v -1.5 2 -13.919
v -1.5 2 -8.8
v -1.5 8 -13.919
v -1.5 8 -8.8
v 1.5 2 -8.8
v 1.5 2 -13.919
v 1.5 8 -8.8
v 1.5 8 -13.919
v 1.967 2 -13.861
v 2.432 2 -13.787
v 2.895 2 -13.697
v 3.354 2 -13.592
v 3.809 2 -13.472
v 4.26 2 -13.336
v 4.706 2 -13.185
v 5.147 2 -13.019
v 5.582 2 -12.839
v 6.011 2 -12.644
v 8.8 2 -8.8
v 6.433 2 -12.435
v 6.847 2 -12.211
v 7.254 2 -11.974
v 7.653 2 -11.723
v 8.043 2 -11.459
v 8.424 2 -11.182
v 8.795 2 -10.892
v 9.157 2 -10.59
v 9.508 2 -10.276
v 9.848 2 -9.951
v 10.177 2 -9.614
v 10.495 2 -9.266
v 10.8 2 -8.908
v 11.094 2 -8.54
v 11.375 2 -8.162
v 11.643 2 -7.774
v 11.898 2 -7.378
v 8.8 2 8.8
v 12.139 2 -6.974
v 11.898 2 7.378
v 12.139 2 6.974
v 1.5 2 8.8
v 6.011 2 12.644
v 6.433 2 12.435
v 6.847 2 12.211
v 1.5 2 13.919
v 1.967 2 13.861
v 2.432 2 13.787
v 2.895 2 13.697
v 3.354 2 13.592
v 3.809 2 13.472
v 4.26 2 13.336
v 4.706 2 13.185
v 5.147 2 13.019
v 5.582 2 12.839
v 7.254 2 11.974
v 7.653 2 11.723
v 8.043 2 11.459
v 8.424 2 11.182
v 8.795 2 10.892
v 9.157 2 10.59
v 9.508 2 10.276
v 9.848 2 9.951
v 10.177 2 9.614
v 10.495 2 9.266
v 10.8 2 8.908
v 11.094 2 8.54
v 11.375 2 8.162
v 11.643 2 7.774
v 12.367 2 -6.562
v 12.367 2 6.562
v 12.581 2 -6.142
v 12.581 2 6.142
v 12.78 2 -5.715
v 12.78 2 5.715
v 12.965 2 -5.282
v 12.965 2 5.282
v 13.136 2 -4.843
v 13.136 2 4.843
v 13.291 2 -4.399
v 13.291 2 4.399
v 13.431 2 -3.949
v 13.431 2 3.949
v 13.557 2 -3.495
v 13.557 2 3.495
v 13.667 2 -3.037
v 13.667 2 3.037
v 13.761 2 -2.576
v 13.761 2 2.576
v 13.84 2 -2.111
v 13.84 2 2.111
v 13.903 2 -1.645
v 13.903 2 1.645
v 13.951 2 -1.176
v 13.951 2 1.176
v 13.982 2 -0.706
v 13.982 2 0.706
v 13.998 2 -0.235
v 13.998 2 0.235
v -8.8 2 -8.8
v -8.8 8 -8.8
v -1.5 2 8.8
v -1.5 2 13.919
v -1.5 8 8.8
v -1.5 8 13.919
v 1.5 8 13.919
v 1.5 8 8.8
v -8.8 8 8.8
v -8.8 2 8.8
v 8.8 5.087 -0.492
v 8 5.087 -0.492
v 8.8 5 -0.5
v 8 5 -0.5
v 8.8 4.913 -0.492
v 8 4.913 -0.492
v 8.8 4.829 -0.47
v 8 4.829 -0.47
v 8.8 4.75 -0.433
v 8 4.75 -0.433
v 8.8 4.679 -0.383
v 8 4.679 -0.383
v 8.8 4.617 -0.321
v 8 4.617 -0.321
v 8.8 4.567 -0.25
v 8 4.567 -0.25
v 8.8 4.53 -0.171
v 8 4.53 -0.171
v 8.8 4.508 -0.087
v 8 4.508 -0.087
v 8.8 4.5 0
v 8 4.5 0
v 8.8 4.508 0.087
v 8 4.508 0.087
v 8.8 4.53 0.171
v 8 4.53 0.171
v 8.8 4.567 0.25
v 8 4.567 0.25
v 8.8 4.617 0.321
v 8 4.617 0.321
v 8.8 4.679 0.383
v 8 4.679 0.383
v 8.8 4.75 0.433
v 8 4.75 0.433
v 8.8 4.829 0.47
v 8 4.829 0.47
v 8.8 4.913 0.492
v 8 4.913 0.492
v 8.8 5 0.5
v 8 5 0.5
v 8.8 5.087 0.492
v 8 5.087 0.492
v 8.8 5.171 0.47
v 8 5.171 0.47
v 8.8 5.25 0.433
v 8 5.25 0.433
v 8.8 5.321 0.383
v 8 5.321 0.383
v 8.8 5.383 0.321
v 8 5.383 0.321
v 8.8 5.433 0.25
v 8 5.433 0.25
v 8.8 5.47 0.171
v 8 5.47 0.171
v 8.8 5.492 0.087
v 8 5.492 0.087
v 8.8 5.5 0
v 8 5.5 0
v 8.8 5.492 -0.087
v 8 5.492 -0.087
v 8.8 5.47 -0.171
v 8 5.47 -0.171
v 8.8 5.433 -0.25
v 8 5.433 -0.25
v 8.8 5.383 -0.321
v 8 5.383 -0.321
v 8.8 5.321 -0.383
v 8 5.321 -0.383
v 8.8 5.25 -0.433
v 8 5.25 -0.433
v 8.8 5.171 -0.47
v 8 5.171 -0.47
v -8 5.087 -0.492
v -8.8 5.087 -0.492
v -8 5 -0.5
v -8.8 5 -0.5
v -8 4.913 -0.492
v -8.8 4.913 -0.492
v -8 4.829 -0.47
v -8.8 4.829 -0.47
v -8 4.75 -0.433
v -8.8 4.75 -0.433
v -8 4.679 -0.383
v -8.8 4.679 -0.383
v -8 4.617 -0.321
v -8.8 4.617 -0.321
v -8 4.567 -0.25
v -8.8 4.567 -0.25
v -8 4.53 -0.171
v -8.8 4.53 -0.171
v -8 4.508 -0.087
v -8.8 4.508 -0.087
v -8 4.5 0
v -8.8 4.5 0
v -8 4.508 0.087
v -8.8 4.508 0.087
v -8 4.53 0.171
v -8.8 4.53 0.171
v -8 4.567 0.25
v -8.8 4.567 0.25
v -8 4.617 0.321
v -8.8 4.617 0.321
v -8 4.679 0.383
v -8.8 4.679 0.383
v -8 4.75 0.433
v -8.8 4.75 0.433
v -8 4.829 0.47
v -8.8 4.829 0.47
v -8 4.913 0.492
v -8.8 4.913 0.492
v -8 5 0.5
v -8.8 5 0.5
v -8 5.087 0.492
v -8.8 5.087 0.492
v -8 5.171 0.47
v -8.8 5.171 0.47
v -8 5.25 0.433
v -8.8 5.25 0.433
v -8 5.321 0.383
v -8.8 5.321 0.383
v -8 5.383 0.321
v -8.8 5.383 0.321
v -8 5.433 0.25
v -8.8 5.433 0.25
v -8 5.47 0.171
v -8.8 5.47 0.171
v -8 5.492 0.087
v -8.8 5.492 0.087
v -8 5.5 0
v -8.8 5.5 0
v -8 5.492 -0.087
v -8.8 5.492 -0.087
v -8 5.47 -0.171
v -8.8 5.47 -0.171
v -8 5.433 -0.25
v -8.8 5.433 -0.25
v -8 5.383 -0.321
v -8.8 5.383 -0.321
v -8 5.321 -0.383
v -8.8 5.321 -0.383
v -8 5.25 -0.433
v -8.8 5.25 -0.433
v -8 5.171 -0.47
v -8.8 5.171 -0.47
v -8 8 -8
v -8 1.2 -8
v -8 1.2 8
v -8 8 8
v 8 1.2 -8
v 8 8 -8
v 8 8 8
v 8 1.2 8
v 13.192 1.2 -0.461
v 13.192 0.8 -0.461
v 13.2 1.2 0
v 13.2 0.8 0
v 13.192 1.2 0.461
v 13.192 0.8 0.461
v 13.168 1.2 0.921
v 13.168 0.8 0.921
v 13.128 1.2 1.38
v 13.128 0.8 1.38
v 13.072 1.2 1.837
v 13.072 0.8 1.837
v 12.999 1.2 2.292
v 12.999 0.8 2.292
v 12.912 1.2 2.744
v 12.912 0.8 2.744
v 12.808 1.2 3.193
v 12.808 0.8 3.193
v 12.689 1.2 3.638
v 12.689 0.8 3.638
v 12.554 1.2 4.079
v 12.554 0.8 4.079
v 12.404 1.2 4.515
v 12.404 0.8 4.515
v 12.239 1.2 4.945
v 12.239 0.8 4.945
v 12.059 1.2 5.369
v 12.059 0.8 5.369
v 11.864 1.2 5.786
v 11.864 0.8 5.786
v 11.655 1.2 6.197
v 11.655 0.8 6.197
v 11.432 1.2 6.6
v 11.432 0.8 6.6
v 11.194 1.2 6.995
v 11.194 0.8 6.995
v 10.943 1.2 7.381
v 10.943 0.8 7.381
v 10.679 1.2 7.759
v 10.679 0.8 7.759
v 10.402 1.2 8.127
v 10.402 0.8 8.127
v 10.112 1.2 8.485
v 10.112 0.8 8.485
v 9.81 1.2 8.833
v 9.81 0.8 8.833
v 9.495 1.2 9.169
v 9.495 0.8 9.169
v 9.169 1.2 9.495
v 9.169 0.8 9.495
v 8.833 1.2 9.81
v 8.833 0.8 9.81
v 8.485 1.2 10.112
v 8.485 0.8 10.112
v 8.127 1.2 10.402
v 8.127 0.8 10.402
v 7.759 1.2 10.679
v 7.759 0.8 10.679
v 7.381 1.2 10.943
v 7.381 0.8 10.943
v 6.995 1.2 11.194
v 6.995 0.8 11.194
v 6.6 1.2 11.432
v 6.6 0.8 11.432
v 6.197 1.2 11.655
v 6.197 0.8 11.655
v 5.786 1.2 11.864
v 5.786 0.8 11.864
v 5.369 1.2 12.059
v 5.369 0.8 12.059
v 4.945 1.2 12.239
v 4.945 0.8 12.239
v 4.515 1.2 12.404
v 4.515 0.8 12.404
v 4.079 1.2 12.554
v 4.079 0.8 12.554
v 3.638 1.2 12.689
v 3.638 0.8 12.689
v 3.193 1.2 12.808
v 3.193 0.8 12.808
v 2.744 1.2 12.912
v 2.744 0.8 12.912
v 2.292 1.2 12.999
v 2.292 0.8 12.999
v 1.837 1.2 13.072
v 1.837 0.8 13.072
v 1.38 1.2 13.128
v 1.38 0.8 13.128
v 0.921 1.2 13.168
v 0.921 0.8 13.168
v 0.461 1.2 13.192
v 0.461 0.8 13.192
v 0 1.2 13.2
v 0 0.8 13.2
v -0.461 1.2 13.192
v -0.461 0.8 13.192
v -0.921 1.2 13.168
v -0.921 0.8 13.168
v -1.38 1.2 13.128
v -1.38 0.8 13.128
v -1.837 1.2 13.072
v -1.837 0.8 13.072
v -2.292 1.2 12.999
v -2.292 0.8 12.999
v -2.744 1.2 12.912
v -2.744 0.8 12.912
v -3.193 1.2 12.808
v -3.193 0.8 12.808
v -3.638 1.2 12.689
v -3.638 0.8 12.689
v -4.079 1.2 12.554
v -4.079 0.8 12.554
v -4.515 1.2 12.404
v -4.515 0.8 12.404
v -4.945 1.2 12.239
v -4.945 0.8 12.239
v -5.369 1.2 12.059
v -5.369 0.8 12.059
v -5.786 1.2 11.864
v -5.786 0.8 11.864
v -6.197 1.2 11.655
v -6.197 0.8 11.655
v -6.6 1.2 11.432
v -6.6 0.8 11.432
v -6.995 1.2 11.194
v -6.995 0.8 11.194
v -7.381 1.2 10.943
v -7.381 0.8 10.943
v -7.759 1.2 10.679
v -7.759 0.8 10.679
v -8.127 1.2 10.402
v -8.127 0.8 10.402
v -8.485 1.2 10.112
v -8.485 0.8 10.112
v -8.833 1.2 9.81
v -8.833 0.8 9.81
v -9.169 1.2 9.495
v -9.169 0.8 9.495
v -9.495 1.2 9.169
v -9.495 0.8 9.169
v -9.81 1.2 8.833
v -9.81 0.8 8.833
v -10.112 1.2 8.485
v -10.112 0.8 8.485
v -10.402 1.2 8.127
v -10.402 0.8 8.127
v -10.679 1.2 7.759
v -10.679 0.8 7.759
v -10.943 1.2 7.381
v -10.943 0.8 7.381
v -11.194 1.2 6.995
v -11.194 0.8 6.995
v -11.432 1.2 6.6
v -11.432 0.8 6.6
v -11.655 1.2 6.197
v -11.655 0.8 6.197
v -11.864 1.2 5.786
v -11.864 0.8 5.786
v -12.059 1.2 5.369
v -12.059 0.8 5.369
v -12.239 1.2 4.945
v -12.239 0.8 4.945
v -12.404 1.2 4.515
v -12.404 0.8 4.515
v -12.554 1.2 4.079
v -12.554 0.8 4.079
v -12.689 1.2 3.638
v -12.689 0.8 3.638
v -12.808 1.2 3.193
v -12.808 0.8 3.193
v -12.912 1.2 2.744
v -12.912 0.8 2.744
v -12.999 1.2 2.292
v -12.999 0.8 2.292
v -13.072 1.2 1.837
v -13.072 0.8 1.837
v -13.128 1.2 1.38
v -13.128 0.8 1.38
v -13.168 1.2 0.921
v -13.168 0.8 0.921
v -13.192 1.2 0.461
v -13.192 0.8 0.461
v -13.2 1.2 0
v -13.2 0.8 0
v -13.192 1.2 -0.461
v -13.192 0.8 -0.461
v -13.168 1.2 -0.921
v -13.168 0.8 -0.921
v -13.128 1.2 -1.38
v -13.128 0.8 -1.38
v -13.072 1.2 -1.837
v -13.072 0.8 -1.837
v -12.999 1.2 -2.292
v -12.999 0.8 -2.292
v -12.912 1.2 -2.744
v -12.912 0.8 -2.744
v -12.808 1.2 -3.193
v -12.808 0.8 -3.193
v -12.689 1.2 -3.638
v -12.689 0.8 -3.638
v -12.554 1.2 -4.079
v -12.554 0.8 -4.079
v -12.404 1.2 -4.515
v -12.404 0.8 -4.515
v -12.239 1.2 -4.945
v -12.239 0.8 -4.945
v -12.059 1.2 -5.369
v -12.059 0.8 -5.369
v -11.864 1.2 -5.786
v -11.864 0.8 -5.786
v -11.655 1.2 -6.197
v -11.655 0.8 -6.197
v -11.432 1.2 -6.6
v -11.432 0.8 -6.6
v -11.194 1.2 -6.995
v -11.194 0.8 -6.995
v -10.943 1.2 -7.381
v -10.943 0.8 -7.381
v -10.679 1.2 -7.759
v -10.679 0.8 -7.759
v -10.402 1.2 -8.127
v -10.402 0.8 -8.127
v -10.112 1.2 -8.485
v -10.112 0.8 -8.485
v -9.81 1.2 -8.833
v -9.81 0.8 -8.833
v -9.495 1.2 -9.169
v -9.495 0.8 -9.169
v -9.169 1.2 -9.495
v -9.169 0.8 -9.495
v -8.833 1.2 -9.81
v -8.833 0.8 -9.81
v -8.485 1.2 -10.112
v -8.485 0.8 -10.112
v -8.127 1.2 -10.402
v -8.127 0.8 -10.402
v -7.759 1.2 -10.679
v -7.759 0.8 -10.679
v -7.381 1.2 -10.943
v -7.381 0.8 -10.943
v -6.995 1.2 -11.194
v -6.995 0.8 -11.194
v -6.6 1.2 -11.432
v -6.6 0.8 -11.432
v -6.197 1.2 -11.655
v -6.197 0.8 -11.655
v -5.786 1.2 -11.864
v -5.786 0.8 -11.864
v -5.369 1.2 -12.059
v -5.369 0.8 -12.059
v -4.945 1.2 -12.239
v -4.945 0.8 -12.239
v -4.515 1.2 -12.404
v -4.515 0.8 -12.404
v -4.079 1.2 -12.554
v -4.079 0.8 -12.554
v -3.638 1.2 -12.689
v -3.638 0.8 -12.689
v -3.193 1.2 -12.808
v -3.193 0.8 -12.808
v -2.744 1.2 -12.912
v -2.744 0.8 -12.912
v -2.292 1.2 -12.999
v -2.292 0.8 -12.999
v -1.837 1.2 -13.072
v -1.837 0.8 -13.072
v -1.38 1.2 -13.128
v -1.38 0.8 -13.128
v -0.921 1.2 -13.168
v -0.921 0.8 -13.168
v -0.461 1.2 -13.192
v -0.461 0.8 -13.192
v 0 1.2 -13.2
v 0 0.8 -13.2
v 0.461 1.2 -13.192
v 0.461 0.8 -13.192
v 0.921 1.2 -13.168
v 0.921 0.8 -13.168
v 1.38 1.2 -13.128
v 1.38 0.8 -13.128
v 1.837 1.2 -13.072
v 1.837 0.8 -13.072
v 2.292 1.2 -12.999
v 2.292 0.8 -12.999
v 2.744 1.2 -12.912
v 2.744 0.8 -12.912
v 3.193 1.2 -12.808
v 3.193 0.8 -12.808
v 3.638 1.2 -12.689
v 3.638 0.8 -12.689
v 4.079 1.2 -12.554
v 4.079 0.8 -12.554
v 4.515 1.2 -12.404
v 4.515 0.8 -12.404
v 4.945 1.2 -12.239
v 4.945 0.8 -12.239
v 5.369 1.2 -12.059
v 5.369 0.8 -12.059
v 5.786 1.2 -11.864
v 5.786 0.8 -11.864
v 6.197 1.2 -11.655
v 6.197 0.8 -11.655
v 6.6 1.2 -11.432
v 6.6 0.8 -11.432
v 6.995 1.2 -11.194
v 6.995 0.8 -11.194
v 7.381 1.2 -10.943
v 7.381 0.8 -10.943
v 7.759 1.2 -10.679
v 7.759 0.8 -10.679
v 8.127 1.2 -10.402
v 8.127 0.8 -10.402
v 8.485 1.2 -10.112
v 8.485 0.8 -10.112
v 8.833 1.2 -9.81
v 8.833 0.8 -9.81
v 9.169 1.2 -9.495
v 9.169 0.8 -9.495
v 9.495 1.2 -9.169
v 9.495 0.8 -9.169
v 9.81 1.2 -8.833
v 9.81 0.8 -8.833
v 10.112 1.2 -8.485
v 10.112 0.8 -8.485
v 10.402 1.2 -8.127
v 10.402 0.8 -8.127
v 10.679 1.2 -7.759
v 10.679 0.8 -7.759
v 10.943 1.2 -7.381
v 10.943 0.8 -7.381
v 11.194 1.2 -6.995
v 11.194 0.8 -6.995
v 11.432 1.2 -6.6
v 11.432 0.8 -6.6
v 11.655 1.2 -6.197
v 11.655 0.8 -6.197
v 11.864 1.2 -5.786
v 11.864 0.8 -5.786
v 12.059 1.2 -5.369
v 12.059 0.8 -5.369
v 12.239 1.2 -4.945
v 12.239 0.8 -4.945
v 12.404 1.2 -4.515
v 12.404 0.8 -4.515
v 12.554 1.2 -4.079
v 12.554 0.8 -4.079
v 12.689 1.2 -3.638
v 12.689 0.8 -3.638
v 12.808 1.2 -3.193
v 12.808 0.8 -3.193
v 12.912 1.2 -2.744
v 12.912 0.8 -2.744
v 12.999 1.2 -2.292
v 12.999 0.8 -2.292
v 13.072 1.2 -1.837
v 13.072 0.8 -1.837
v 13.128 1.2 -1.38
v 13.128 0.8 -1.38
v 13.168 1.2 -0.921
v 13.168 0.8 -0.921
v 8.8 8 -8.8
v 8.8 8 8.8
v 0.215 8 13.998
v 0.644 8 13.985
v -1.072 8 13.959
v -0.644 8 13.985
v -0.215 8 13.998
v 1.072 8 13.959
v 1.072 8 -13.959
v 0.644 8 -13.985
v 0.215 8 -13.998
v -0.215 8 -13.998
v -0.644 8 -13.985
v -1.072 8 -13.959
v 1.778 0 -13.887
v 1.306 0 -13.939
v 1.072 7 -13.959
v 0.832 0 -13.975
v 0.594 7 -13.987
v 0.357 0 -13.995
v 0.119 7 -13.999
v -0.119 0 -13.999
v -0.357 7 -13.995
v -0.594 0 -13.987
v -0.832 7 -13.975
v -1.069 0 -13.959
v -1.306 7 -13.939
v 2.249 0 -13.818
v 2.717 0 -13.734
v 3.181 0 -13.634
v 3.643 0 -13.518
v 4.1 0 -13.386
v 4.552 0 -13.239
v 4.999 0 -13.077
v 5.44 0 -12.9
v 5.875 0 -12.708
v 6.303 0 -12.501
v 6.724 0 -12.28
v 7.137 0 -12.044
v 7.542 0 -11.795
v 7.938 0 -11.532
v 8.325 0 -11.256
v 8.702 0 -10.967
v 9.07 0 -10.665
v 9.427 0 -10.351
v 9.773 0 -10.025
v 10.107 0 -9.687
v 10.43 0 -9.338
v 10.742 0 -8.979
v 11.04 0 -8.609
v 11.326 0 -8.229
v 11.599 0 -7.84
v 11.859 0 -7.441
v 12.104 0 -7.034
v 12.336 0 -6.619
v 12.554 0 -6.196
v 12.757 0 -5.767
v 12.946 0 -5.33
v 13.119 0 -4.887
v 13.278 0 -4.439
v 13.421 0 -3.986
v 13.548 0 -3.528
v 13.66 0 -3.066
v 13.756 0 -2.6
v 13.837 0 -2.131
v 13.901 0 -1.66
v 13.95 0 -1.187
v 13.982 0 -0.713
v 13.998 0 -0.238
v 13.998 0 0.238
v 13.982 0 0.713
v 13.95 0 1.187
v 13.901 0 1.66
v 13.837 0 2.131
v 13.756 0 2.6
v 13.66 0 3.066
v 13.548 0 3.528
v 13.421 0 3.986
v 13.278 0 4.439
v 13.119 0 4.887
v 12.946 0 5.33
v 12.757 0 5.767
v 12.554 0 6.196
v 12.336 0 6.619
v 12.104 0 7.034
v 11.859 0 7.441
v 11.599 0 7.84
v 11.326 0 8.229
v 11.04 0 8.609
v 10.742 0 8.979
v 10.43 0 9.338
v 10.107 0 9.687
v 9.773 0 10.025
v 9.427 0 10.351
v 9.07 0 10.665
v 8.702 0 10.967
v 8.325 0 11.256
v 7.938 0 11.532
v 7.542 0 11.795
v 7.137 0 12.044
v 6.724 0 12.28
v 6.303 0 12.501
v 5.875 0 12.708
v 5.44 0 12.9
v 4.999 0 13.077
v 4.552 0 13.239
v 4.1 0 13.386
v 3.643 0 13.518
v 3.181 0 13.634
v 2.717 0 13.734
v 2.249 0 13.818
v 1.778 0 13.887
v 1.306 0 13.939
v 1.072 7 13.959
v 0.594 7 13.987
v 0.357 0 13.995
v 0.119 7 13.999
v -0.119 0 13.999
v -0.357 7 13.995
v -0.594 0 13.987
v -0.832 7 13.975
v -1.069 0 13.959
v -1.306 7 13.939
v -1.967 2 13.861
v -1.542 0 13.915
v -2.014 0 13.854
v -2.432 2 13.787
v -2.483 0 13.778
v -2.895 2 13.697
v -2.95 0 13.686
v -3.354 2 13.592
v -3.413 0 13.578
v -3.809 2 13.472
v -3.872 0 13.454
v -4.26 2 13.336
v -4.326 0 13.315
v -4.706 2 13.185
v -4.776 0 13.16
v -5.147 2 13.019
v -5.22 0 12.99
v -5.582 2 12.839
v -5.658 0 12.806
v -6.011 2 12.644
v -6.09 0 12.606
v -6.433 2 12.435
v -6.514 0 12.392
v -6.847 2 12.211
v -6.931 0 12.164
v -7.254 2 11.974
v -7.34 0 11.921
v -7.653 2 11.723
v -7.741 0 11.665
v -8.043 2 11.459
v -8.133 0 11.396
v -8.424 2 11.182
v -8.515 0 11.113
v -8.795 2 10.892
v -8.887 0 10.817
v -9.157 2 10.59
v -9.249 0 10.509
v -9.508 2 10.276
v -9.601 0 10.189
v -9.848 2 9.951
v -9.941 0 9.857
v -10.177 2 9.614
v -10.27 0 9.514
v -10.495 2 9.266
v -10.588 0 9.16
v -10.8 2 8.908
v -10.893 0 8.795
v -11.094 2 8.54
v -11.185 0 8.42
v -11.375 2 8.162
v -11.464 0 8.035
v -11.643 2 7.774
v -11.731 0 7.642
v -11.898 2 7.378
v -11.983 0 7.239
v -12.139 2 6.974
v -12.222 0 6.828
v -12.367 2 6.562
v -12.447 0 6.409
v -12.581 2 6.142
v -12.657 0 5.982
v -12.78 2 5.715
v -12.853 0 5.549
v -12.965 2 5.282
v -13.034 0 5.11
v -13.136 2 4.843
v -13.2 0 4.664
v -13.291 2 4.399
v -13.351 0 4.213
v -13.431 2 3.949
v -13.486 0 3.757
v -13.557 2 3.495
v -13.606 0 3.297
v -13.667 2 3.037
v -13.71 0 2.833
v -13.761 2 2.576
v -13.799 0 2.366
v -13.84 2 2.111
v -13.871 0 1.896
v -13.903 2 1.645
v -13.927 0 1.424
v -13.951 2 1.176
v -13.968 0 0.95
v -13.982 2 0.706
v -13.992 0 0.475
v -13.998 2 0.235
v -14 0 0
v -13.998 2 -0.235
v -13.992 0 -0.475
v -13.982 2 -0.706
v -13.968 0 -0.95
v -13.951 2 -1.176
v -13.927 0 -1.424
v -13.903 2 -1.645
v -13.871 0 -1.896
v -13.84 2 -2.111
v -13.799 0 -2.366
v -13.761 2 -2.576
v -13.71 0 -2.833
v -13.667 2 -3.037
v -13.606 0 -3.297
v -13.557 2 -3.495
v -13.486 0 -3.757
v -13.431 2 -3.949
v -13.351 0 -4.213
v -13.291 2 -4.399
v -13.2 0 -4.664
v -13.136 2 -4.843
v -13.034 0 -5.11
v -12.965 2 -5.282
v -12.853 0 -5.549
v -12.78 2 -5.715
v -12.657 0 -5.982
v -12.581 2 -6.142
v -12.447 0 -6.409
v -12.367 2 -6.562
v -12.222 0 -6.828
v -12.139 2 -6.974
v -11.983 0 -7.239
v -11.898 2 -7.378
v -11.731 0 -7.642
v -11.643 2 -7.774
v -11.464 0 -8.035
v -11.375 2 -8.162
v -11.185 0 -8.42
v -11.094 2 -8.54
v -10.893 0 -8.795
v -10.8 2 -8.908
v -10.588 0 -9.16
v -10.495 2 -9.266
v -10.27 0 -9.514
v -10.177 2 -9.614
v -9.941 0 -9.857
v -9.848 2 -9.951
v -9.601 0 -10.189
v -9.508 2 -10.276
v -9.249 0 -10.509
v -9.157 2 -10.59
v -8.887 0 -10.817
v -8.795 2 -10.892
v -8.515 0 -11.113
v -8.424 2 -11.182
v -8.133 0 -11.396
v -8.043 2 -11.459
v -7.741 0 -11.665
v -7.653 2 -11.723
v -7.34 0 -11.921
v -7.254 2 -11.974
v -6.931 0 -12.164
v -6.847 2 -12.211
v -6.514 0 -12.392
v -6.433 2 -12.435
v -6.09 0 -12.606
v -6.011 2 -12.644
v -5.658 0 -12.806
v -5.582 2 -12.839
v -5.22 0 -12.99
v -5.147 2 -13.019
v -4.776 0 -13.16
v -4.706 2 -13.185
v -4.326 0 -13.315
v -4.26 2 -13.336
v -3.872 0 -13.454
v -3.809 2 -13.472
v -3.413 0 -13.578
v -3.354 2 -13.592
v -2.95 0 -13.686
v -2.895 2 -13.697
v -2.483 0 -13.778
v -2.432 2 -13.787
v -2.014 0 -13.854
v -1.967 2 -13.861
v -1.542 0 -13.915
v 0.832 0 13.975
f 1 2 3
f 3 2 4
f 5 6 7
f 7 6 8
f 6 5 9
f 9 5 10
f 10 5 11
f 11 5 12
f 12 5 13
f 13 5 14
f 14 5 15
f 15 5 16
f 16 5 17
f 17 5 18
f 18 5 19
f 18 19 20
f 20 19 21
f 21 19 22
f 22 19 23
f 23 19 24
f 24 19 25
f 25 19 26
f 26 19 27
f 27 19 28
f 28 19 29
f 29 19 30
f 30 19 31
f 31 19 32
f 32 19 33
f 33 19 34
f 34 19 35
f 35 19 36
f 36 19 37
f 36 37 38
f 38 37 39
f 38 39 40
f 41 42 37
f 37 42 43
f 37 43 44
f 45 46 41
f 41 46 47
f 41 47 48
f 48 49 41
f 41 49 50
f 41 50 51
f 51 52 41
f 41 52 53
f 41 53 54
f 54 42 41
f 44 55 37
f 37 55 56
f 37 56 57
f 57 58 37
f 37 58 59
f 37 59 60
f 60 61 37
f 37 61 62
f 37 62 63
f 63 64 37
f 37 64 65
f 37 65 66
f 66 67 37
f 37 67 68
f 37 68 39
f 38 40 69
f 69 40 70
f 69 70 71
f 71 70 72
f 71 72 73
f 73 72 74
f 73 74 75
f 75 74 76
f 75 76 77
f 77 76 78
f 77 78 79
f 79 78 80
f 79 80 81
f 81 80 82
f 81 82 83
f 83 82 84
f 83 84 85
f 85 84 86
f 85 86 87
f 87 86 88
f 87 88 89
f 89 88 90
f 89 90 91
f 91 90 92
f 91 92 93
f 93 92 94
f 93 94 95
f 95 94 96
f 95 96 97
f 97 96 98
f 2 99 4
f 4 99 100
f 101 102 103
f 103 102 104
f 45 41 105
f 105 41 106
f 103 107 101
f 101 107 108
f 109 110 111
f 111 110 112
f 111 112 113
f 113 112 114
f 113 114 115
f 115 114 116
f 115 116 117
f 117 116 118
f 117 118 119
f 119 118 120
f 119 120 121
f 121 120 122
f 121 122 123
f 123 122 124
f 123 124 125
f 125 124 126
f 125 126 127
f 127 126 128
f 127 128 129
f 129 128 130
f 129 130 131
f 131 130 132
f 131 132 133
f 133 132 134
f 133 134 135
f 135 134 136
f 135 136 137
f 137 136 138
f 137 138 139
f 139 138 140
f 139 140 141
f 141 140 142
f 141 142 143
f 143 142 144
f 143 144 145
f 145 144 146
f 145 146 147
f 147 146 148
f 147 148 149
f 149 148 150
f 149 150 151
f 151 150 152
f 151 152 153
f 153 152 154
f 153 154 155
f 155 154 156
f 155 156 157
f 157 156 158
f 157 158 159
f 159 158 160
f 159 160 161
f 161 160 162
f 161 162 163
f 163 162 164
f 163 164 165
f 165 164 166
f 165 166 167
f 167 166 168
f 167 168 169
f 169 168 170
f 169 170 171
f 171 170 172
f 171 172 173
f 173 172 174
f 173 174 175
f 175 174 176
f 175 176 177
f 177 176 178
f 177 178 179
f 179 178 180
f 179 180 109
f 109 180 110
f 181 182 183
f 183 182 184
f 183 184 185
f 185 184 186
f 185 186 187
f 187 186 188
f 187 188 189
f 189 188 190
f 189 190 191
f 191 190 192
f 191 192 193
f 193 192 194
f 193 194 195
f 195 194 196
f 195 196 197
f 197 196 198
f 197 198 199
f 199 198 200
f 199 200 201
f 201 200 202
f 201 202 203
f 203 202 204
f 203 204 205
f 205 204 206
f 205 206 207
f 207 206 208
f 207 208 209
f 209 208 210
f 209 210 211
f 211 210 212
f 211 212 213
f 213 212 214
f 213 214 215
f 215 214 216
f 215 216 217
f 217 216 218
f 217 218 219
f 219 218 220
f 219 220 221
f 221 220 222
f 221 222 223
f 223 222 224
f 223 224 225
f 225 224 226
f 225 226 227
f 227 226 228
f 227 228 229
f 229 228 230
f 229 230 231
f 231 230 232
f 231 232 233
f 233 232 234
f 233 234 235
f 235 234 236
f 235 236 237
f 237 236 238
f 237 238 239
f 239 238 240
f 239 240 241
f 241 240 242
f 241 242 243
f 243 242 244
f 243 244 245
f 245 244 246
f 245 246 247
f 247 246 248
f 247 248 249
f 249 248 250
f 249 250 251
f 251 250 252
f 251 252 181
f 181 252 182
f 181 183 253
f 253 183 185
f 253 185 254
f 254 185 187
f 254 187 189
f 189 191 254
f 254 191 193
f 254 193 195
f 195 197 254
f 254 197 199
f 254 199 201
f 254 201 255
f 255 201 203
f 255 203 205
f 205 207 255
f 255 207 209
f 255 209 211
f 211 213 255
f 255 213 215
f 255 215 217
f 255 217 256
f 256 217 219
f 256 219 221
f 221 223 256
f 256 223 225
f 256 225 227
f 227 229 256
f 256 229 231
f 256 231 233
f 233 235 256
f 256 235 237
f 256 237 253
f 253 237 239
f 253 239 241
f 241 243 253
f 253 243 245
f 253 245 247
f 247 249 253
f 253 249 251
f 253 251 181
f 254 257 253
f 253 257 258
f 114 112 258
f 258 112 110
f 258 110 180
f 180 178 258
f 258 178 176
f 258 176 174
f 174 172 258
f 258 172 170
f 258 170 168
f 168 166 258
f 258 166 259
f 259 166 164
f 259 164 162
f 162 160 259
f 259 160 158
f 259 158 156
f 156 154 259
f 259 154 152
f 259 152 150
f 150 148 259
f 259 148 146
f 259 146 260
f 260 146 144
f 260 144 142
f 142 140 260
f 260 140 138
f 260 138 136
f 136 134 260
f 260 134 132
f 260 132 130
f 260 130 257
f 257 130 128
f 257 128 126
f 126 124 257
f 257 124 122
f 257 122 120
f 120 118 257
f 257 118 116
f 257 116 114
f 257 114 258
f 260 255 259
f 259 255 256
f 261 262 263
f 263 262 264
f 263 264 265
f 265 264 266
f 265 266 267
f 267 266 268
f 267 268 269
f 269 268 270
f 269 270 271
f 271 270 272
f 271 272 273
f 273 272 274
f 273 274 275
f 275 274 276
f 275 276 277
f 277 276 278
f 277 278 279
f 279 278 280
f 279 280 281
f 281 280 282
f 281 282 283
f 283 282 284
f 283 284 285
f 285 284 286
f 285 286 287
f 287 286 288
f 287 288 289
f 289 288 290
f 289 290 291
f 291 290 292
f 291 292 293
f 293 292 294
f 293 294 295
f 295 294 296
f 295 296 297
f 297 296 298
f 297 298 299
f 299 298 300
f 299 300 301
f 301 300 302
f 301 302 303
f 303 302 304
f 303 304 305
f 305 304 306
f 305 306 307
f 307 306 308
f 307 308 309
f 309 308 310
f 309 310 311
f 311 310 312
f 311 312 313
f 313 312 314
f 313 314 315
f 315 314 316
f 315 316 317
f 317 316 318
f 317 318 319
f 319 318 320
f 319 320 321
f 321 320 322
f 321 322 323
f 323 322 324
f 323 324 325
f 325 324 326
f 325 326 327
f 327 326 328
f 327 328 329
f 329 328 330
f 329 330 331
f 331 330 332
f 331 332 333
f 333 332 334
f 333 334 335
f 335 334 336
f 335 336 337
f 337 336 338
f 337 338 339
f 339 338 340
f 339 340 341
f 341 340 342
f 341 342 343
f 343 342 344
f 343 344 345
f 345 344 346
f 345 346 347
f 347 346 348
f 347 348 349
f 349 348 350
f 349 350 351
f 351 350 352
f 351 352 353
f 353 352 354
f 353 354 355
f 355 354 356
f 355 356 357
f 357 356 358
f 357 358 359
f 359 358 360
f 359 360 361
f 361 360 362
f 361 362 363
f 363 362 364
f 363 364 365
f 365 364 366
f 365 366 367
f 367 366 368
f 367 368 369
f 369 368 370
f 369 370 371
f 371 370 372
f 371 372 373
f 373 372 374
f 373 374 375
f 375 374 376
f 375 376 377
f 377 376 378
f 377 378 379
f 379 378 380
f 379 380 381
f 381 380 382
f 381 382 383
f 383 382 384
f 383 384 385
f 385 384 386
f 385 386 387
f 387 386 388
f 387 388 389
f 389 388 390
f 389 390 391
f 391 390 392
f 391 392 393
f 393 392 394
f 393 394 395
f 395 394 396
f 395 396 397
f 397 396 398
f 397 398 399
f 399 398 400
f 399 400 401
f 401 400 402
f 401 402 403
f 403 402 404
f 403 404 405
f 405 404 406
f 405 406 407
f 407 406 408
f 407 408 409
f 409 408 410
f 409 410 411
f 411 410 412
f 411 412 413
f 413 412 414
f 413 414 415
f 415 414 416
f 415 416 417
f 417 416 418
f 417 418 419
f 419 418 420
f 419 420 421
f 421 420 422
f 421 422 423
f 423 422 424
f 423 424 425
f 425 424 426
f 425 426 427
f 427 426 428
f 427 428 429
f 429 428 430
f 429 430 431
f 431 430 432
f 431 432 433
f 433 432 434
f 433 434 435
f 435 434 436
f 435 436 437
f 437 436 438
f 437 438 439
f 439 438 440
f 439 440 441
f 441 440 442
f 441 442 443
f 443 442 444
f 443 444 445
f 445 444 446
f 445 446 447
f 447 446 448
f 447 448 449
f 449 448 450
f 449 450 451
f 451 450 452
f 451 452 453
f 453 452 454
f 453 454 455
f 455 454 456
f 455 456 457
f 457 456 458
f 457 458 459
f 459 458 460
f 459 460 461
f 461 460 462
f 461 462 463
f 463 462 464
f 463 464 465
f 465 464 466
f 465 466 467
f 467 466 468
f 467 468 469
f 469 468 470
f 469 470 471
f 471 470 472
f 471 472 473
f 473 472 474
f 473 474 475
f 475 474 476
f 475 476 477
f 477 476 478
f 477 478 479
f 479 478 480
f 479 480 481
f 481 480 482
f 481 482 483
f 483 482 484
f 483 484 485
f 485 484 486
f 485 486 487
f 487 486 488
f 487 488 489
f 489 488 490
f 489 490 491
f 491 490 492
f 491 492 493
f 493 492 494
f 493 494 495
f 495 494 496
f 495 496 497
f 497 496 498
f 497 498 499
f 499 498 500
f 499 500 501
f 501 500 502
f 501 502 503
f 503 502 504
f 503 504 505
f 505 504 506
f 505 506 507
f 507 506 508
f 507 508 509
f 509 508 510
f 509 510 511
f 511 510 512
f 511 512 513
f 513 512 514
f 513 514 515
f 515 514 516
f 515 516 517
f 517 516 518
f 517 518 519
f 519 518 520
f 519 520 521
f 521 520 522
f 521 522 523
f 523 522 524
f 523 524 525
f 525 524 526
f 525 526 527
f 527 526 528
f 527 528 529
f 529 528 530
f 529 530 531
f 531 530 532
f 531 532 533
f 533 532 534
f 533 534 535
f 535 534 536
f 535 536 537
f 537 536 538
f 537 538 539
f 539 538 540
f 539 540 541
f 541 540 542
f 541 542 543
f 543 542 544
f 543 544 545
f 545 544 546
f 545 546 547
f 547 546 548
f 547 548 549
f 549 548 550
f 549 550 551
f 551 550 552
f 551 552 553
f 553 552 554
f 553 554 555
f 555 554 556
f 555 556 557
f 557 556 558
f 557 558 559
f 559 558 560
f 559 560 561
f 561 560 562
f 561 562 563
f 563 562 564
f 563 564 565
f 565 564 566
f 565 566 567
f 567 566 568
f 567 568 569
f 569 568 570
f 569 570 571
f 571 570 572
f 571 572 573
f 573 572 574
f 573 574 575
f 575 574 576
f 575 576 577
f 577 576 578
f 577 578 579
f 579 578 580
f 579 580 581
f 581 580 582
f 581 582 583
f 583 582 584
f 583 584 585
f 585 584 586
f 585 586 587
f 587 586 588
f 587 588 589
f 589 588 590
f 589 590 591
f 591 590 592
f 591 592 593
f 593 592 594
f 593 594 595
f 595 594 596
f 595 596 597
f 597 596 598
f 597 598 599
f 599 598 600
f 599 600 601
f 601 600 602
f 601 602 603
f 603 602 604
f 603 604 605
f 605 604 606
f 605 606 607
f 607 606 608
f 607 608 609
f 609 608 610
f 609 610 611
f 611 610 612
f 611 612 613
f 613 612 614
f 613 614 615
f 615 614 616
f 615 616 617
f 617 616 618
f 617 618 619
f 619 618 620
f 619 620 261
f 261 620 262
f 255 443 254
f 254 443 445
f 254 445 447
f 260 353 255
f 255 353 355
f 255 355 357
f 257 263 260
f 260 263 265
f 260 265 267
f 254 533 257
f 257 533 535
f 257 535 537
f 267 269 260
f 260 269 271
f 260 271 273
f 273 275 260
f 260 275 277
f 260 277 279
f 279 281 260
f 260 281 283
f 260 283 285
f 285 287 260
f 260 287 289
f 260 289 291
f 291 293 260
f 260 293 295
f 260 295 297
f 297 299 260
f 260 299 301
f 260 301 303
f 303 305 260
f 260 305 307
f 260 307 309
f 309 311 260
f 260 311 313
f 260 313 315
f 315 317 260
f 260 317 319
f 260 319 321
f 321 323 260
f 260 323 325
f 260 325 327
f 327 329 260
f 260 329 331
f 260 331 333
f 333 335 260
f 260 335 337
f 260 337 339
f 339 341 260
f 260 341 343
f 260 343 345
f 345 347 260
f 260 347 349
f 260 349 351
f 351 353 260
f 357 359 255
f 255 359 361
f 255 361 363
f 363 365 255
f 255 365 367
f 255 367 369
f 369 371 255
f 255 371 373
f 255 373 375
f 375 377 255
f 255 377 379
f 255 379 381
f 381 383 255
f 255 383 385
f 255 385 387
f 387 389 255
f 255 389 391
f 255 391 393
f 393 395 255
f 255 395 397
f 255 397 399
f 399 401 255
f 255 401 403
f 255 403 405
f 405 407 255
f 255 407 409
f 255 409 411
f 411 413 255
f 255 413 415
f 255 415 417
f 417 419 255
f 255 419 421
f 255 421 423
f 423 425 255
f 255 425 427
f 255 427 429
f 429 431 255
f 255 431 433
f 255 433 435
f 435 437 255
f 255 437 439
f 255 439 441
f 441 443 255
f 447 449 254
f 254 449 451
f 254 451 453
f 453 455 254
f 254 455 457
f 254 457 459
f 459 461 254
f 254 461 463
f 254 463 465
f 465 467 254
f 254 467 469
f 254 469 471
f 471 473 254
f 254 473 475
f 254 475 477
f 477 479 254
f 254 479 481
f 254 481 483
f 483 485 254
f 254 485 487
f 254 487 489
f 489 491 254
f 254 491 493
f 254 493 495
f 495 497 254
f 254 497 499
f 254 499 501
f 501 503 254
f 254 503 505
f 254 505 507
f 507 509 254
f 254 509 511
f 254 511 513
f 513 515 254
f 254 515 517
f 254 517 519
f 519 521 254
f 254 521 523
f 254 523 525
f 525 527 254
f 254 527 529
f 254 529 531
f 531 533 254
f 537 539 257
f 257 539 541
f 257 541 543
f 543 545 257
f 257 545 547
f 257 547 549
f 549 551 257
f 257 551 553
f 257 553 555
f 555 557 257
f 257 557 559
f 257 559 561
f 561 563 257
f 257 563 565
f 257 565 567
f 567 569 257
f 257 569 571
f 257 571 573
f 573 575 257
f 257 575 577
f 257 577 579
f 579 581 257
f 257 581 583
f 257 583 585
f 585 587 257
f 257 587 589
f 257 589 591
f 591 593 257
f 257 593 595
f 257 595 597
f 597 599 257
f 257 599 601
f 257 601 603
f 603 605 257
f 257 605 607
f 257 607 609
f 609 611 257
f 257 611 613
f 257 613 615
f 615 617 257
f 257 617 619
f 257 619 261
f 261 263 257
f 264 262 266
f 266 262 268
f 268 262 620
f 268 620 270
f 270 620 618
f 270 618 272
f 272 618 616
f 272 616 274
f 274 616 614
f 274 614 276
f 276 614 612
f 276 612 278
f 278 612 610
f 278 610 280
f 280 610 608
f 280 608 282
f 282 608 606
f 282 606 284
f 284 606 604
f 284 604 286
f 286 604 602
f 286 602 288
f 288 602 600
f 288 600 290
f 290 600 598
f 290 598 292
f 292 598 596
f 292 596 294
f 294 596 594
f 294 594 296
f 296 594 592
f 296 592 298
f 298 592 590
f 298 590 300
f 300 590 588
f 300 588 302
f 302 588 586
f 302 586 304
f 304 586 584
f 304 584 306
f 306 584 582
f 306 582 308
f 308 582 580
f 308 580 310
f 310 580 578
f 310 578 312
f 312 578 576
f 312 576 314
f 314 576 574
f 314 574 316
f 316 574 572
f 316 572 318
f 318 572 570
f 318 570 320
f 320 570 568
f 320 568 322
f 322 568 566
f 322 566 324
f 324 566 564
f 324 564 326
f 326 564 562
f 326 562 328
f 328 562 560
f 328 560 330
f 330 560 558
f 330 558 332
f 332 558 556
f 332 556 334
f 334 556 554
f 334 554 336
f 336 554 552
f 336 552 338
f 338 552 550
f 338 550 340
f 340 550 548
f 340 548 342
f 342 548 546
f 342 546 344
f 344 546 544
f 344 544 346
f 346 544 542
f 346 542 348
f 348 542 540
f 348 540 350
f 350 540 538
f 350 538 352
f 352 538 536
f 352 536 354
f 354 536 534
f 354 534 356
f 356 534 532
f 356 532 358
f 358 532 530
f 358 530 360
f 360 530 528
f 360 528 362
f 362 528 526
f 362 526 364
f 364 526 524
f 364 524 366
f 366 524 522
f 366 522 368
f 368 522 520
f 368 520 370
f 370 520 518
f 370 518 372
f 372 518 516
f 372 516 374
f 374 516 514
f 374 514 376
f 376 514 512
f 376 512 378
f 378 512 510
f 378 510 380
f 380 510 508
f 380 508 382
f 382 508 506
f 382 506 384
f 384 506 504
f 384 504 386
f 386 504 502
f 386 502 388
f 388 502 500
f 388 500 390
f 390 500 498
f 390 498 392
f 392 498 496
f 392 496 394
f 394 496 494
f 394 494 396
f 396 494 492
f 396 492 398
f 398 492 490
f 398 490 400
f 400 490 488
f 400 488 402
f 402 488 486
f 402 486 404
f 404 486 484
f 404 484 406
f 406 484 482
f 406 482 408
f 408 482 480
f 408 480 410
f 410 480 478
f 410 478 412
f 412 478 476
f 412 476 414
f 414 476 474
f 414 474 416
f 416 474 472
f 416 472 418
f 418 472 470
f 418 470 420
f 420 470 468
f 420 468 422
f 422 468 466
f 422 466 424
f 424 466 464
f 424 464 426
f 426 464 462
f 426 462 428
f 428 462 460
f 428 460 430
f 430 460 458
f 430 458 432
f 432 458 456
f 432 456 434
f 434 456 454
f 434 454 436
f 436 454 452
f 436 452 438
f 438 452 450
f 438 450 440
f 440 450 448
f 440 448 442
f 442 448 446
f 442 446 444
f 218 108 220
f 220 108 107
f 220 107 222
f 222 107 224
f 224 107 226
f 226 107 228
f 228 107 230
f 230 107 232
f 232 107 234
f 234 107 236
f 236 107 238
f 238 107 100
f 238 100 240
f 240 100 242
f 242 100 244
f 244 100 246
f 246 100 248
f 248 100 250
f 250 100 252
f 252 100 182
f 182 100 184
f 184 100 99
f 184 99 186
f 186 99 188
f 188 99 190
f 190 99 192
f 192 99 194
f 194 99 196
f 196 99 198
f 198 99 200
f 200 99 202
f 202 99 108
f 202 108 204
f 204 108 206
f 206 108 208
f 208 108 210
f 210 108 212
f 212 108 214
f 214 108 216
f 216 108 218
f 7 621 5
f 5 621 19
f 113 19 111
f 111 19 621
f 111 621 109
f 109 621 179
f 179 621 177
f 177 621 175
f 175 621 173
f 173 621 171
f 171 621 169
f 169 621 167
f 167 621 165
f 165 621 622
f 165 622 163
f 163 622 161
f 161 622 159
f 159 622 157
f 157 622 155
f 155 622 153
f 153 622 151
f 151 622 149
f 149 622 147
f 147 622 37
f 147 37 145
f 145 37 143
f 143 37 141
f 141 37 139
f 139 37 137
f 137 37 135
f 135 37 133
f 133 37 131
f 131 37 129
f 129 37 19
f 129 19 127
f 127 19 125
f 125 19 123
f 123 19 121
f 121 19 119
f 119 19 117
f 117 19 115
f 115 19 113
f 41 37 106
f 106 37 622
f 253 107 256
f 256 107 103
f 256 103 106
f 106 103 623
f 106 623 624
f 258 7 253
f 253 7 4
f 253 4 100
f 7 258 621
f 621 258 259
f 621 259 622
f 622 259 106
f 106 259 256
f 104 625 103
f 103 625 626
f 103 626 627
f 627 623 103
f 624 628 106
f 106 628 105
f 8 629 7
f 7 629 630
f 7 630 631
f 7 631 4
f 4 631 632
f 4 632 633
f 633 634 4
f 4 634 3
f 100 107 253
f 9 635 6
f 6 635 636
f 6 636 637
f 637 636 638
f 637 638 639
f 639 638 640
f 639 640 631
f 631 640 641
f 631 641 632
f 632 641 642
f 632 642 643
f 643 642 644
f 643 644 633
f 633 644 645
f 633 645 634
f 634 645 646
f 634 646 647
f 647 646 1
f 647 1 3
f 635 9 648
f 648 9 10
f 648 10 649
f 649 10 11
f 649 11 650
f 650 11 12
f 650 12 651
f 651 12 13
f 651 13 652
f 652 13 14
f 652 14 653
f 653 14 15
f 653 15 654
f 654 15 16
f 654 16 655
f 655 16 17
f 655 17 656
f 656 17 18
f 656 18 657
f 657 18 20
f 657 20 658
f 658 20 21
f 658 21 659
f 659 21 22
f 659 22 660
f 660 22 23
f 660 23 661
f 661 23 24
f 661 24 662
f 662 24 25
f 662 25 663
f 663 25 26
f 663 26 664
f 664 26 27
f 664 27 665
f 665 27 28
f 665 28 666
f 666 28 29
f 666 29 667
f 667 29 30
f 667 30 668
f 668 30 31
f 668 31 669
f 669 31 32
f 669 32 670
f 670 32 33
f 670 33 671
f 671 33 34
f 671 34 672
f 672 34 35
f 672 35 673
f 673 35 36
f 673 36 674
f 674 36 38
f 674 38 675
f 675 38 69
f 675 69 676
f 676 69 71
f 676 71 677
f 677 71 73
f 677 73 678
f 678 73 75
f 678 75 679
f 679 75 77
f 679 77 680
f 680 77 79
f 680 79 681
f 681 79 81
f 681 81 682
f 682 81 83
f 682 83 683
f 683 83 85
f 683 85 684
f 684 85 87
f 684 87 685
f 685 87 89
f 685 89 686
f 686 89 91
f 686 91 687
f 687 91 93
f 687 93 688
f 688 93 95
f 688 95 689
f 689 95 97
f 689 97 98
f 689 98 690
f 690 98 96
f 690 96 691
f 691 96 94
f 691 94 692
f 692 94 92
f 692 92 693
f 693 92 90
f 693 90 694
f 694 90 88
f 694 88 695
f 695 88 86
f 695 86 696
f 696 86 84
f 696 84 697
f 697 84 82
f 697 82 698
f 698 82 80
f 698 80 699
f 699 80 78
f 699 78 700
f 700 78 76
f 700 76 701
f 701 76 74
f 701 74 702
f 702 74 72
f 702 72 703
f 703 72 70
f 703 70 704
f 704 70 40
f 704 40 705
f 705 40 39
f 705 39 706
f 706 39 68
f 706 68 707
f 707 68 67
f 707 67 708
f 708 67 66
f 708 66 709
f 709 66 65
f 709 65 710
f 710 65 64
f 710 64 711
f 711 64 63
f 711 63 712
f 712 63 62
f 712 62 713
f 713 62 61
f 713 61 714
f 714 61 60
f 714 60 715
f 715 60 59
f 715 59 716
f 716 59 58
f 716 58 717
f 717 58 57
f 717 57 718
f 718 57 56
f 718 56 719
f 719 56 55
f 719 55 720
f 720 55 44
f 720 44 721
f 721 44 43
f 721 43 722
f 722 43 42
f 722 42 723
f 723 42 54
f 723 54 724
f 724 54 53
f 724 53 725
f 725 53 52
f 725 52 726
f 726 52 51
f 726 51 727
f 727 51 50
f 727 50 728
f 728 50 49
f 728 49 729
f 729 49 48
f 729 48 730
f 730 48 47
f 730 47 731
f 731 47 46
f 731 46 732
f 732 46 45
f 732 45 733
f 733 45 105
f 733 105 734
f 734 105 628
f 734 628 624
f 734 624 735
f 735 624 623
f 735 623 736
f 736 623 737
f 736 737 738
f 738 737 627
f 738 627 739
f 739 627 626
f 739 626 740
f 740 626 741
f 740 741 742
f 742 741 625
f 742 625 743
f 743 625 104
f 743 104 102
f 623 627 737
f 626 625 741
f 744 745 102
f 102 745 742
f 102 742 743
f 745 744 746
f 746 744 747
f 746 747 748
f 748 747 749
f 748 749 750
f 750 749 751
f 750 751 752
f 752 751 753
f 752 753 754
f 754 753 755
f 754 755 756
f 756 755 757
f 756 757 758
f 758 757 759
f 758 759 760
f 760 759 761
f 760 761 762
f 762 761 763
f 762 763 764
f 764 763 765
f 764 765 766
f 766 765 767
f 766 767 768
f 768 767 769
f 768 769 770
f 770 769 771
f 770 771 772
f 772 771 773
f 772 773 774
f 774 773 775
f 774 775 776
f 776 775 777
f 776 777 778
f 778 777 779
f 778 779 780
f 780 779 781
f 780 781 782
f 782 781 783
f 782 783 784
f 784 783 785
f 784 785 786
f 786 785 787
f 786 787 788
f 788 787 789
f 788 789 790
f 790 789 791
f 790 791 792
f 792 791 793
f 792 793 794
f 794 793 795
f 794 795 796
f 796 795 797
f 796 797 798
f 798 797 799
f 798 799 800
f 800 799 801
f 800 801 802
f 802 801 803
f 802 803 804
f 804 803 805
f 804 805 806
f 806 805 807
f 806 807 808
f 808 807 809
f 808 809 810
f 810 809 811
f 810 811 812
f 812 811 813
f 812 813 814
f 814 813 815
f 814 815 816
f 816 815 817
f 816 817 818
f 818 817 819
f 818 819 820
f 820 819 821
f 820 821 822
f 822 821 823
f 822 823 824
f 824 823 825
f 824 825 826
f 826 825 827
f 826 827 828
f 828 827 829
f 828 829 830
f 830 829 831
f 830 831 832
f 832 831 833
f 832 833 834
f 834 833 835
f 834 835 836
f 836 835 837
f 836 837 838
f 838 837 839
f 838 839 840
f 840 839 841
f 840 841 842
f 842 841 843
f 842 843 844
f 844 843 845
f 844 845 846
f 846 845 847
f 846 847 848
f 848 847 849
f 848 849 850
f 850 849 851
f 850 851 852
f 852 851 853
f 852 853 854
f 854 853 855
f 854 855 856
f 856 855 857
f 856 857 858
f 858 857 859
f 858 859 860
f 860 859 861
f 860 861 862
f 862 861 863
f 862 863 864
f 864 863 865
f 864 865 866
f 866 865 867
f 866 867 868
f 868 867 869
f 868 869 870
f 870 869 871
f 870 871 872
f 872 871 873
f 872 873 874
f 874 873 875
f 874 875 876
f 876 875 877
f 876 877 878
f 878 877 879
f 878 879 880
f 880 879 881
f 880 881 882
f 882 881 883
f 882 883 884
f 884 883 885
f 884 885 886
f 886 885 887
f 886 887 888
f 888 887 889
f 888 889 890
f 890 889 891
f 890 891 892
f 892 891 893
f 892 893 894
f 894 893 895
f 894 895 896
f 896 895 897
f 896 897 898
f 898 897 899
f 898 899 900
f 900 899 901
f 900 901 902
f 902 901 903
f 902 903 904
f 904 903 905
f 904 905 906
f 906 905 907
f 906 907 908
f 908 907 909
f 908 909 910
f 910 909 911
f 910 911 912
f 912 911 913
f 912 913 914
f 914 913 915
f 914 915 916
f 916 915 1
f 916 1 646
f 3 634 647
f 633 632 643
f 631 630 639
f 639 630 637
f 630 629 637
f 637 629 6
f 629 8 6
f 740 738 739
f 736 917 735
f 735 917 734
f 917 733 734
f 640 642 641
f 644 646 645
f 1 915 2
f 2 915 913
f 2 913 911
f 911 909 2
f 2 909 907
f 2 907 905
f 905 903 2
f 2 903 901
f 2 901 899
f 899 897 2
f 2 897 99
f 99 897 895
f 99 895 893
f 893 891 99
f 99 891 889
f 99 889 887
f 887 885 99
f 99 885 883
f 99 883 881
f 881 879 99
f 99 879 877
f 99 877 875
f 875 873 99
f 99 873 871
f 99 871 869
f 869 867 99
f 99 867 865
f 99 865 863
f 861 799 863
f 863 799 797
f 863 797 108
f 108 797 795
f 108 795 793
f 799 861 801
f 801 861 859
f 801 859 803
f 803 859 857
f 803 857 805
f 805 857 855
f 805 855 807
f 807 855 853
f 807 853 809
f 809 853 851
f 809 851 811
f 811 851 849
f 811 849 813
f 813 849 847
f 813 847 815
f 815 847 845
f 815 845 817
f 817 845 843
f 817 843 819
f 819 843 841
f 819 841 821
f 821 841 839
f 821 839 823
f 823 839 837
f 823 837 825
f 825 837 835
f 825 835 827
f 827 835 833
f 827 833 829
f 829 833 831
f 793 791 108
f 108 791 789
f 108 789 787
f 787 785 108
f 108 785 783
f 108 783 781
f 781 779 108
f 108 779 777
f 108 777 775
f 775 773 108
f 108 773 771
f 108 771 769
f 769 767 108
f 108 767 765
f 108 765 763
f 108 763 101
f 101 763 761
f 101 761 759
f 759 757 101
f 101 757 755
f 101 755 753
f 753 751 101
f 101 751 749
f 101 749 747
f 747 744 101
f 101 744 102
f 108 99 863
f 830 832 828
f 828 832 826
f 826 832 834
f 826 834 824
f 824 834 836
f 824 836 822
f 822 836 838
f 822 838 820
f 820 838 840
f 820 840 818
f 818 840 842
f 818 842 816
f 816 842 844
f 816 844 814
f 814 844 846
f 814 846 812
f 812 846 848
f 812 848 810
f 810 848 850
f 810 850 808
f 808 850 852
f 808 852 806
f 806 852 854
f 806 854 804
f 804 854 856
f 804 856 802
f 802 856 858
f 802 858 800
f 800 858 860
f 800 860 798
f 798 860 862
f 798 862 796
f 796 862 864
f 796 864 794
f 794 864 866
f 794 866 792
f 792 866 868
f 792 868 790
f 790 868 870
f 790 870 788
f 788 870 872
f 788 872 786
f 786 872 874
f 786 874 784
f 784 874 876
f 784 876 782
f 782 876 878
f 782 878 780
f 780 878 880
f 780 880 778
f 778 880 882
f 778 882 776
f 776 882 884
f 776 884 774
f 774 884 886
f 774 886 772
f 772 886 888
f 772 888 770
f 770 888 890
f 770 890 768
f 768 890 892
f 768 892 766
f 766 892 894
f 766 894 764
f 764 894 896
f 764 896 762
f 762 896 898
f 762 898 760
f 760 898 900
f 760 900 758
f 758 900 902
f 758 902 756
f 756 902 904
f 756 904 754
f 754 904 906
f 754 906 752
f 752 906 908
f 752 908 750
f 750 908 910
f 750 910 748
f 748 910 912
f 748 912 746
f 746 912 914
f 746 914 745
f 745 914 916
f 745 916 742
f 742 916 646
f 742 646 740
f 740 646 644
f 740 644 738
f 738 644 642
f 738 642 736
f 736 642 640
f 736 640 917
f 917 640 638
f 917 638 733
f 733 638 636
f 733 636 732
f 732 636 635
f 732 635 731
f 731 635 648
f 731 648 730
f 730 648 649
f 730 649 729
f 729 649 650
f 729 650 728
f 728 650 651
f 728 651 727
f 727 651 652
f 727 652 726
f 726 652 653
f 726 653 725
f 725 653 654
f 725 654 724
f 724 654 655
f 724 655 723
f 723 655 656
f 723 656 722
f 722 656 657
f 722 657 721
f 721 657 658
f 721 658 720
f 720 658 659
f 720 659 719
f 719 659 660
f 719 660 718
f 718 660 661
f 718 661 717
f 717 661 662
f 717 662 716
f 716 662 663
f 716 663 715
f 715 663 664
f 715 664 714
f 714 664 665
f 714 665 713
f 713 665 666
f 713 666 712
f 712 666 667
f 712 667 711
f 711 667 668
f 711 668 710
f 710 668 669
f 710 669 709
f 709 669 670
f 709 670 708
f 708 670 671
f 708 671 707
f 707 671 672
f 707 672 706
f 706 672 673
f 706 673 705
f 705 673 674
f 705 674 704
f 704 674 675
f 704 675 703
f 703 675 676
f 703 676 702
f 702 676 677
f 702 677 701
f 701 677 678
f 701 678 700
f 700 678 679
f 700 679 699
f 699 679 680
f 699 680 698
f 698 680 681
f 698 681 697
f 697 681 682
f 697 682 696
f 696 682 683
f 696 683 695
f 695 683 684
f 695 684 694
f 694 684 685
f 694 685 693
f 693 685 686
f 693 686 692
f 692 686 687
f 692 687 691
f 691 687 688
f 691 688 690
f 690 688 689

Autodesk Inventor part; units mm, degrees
ref_plane "YZ Plane" through (0, 0, 0) normal (1, 0, 0) x (0, 1, 0)
ref_plane "XZ Plane" through (0, 0, 0) normal (0, 1, 0) x (-1, 0, 0)
ref_plane "XY Plane" through (0, 0, 0) normal (0, 0, 1) x (1, 0, 0)
sketch "Sketch2" plane through (0, 0, 0) normal (0, 1, 0) x (-1, 0, 0)
  circle A0 centre (0, 0) radius 14
  circle A1 centre (0, 0) radius 13
  dimension "d0" = 28
  dimension "d110" = 26
extrude "Extrusion1" add sketch "Sketch2" along normal blind 2 contours A0 | A1
sketch "Sketch13" plane through (0, 2, 0) normal (0, 1, 0) x (1, 0, 0)
  line L0 (0, 0) -> (8.8, 0)
  line L1 (8.8, 0) -> (8.8, -8.8)
  line L2 (8.8, -8.8) -> (-8.8, -8.8)
  line L3 (-8.8, -8.8) -> (-8.8, 8.8)
  line L4 (-8.8, 8.8) -> (8.8, 8.8)
  line L5 (8.8, 8.8) -> (8.8, 0)
  line L6 (0, 0) -> (8, 0)
  line L7 (8, 0) -> (8, -8)
  line L8 (8, -8) -> (-8, -8)
  line L9 (-8, -8) -> (-8, 8)
  line L10 (-8, 8) -> (8, 8)
  line L11 (8, 8) -> (8, 0)
  line L12 (-8.8, 0) -> (-8, 0)
  dimension "d104" = 8.8
  dimension "d105" = 8.8
  dimension "d106" = 17.6
  dimension "d107" = 17.6
  dimension "d108" = 17.6
  dimension "d109" = 8.8
  dimension "d114" = 8
  dimension "d115" = 8
  dimension "d116" = 16
  dimension "d117" = 16
  dimension "d118" = 16
  dimension "d119" = 8
extrude "Extrusion8" add sketch "Sketch13" along normal blind 6
shell "Shell2" thickness 0.8 removed faces 1 at (-2.9333, 8, -2.9333)
sketch "Sketch14" plane through (-8.8, 2, -8.8) normal (-1, 0, 0) x (0, 0, 1)
  line L0 (17.6, 6) -> (0, 6) projected
  line L1 (8.8, 6) -> (8.8, 3)
  line L2 (8.8, 3) -> (0, 3)
  line L3 (0, 0) -> (0, 6) projected
  circle A0 centre (8.8, 3) radius 0.5
  point P0 (8.8, -2)
  dimension "d121" = 3
  dimension "d122" = 8.8
  dimension "d123" = 1
hole "Hole5" at (-8.8, 5, 0) direction (1, 0, 0) diameter 1 depth 20
sketch "Sketch15" plane through (0, 2, 0) normal (0, 1, 0) x (1, 0, 0)
  line L0 (-8.8, -8.8) -> (8.8, -8.8) projected
  circle A0 centre (0, 0) radius 14 projected
  line L1 (0, -8.8) -> (1.5, -8.8)
  line L2 (1.5, -8.8) -> (1.5, -14.8)
  line L3 (1.5, -14.8) -> (-1.5, -14.8)
  line L4 (1.5, -14.8) -> (4.5, -14.8) construction
  line L5 (-1.5, -14.8) -> (-1.5, -8.8)
  line L6 (-1.5, -8.8) -> (1.5, -8.8)
  point P0 (-1.5, -13.9194)
  point P1 (1.5, -13.9194)
  dimension "d132" = 1.5
  dimension "d133" = 6
  dimension "d134" = 3
  dimension "d136" = 6
  dimension "d137" = 3
extrude "Extrusion9" add sketch "Sketch15" along normal blind 6 contours L0 L2 A0 L5 picked at (0.667, -10.5303)
sketch "Sketch17" plane through (0, 2, 0) normal (0, 1, 0) x (1, 0, 0)
  circle A0 centre (0, 0) radius 14 projected
  line L0 (0, 14) -> (-1.5, 14)
  line L1 (-1.5, 14) -> (-1.5, 8.8)
  line L2 (8.8, 8.8) -> (-8.8, 8.8) projected
  line L3 (-1.5, 8.8) -> (1.5, 8.8)
  line L4 (1.5, 8.8) -> (1.5, 14)
  line L5 (1.5, 14) -> (0, 14)
  point P0 (1.5, 8.8)
  point P1 (1.5, 13.9194)
  point P2 (-1.5, 13.9194)
  dimension "d159" = 1.5
  dimension "d160" = 3
extrude "Extrusion11" add sketch "Sketch17" along normal blind 6 contours L4 L2 L1 A0 picked at (0, 10.5333)
properties part number "Part6_containter_bottom" material "ABS Plastic"
